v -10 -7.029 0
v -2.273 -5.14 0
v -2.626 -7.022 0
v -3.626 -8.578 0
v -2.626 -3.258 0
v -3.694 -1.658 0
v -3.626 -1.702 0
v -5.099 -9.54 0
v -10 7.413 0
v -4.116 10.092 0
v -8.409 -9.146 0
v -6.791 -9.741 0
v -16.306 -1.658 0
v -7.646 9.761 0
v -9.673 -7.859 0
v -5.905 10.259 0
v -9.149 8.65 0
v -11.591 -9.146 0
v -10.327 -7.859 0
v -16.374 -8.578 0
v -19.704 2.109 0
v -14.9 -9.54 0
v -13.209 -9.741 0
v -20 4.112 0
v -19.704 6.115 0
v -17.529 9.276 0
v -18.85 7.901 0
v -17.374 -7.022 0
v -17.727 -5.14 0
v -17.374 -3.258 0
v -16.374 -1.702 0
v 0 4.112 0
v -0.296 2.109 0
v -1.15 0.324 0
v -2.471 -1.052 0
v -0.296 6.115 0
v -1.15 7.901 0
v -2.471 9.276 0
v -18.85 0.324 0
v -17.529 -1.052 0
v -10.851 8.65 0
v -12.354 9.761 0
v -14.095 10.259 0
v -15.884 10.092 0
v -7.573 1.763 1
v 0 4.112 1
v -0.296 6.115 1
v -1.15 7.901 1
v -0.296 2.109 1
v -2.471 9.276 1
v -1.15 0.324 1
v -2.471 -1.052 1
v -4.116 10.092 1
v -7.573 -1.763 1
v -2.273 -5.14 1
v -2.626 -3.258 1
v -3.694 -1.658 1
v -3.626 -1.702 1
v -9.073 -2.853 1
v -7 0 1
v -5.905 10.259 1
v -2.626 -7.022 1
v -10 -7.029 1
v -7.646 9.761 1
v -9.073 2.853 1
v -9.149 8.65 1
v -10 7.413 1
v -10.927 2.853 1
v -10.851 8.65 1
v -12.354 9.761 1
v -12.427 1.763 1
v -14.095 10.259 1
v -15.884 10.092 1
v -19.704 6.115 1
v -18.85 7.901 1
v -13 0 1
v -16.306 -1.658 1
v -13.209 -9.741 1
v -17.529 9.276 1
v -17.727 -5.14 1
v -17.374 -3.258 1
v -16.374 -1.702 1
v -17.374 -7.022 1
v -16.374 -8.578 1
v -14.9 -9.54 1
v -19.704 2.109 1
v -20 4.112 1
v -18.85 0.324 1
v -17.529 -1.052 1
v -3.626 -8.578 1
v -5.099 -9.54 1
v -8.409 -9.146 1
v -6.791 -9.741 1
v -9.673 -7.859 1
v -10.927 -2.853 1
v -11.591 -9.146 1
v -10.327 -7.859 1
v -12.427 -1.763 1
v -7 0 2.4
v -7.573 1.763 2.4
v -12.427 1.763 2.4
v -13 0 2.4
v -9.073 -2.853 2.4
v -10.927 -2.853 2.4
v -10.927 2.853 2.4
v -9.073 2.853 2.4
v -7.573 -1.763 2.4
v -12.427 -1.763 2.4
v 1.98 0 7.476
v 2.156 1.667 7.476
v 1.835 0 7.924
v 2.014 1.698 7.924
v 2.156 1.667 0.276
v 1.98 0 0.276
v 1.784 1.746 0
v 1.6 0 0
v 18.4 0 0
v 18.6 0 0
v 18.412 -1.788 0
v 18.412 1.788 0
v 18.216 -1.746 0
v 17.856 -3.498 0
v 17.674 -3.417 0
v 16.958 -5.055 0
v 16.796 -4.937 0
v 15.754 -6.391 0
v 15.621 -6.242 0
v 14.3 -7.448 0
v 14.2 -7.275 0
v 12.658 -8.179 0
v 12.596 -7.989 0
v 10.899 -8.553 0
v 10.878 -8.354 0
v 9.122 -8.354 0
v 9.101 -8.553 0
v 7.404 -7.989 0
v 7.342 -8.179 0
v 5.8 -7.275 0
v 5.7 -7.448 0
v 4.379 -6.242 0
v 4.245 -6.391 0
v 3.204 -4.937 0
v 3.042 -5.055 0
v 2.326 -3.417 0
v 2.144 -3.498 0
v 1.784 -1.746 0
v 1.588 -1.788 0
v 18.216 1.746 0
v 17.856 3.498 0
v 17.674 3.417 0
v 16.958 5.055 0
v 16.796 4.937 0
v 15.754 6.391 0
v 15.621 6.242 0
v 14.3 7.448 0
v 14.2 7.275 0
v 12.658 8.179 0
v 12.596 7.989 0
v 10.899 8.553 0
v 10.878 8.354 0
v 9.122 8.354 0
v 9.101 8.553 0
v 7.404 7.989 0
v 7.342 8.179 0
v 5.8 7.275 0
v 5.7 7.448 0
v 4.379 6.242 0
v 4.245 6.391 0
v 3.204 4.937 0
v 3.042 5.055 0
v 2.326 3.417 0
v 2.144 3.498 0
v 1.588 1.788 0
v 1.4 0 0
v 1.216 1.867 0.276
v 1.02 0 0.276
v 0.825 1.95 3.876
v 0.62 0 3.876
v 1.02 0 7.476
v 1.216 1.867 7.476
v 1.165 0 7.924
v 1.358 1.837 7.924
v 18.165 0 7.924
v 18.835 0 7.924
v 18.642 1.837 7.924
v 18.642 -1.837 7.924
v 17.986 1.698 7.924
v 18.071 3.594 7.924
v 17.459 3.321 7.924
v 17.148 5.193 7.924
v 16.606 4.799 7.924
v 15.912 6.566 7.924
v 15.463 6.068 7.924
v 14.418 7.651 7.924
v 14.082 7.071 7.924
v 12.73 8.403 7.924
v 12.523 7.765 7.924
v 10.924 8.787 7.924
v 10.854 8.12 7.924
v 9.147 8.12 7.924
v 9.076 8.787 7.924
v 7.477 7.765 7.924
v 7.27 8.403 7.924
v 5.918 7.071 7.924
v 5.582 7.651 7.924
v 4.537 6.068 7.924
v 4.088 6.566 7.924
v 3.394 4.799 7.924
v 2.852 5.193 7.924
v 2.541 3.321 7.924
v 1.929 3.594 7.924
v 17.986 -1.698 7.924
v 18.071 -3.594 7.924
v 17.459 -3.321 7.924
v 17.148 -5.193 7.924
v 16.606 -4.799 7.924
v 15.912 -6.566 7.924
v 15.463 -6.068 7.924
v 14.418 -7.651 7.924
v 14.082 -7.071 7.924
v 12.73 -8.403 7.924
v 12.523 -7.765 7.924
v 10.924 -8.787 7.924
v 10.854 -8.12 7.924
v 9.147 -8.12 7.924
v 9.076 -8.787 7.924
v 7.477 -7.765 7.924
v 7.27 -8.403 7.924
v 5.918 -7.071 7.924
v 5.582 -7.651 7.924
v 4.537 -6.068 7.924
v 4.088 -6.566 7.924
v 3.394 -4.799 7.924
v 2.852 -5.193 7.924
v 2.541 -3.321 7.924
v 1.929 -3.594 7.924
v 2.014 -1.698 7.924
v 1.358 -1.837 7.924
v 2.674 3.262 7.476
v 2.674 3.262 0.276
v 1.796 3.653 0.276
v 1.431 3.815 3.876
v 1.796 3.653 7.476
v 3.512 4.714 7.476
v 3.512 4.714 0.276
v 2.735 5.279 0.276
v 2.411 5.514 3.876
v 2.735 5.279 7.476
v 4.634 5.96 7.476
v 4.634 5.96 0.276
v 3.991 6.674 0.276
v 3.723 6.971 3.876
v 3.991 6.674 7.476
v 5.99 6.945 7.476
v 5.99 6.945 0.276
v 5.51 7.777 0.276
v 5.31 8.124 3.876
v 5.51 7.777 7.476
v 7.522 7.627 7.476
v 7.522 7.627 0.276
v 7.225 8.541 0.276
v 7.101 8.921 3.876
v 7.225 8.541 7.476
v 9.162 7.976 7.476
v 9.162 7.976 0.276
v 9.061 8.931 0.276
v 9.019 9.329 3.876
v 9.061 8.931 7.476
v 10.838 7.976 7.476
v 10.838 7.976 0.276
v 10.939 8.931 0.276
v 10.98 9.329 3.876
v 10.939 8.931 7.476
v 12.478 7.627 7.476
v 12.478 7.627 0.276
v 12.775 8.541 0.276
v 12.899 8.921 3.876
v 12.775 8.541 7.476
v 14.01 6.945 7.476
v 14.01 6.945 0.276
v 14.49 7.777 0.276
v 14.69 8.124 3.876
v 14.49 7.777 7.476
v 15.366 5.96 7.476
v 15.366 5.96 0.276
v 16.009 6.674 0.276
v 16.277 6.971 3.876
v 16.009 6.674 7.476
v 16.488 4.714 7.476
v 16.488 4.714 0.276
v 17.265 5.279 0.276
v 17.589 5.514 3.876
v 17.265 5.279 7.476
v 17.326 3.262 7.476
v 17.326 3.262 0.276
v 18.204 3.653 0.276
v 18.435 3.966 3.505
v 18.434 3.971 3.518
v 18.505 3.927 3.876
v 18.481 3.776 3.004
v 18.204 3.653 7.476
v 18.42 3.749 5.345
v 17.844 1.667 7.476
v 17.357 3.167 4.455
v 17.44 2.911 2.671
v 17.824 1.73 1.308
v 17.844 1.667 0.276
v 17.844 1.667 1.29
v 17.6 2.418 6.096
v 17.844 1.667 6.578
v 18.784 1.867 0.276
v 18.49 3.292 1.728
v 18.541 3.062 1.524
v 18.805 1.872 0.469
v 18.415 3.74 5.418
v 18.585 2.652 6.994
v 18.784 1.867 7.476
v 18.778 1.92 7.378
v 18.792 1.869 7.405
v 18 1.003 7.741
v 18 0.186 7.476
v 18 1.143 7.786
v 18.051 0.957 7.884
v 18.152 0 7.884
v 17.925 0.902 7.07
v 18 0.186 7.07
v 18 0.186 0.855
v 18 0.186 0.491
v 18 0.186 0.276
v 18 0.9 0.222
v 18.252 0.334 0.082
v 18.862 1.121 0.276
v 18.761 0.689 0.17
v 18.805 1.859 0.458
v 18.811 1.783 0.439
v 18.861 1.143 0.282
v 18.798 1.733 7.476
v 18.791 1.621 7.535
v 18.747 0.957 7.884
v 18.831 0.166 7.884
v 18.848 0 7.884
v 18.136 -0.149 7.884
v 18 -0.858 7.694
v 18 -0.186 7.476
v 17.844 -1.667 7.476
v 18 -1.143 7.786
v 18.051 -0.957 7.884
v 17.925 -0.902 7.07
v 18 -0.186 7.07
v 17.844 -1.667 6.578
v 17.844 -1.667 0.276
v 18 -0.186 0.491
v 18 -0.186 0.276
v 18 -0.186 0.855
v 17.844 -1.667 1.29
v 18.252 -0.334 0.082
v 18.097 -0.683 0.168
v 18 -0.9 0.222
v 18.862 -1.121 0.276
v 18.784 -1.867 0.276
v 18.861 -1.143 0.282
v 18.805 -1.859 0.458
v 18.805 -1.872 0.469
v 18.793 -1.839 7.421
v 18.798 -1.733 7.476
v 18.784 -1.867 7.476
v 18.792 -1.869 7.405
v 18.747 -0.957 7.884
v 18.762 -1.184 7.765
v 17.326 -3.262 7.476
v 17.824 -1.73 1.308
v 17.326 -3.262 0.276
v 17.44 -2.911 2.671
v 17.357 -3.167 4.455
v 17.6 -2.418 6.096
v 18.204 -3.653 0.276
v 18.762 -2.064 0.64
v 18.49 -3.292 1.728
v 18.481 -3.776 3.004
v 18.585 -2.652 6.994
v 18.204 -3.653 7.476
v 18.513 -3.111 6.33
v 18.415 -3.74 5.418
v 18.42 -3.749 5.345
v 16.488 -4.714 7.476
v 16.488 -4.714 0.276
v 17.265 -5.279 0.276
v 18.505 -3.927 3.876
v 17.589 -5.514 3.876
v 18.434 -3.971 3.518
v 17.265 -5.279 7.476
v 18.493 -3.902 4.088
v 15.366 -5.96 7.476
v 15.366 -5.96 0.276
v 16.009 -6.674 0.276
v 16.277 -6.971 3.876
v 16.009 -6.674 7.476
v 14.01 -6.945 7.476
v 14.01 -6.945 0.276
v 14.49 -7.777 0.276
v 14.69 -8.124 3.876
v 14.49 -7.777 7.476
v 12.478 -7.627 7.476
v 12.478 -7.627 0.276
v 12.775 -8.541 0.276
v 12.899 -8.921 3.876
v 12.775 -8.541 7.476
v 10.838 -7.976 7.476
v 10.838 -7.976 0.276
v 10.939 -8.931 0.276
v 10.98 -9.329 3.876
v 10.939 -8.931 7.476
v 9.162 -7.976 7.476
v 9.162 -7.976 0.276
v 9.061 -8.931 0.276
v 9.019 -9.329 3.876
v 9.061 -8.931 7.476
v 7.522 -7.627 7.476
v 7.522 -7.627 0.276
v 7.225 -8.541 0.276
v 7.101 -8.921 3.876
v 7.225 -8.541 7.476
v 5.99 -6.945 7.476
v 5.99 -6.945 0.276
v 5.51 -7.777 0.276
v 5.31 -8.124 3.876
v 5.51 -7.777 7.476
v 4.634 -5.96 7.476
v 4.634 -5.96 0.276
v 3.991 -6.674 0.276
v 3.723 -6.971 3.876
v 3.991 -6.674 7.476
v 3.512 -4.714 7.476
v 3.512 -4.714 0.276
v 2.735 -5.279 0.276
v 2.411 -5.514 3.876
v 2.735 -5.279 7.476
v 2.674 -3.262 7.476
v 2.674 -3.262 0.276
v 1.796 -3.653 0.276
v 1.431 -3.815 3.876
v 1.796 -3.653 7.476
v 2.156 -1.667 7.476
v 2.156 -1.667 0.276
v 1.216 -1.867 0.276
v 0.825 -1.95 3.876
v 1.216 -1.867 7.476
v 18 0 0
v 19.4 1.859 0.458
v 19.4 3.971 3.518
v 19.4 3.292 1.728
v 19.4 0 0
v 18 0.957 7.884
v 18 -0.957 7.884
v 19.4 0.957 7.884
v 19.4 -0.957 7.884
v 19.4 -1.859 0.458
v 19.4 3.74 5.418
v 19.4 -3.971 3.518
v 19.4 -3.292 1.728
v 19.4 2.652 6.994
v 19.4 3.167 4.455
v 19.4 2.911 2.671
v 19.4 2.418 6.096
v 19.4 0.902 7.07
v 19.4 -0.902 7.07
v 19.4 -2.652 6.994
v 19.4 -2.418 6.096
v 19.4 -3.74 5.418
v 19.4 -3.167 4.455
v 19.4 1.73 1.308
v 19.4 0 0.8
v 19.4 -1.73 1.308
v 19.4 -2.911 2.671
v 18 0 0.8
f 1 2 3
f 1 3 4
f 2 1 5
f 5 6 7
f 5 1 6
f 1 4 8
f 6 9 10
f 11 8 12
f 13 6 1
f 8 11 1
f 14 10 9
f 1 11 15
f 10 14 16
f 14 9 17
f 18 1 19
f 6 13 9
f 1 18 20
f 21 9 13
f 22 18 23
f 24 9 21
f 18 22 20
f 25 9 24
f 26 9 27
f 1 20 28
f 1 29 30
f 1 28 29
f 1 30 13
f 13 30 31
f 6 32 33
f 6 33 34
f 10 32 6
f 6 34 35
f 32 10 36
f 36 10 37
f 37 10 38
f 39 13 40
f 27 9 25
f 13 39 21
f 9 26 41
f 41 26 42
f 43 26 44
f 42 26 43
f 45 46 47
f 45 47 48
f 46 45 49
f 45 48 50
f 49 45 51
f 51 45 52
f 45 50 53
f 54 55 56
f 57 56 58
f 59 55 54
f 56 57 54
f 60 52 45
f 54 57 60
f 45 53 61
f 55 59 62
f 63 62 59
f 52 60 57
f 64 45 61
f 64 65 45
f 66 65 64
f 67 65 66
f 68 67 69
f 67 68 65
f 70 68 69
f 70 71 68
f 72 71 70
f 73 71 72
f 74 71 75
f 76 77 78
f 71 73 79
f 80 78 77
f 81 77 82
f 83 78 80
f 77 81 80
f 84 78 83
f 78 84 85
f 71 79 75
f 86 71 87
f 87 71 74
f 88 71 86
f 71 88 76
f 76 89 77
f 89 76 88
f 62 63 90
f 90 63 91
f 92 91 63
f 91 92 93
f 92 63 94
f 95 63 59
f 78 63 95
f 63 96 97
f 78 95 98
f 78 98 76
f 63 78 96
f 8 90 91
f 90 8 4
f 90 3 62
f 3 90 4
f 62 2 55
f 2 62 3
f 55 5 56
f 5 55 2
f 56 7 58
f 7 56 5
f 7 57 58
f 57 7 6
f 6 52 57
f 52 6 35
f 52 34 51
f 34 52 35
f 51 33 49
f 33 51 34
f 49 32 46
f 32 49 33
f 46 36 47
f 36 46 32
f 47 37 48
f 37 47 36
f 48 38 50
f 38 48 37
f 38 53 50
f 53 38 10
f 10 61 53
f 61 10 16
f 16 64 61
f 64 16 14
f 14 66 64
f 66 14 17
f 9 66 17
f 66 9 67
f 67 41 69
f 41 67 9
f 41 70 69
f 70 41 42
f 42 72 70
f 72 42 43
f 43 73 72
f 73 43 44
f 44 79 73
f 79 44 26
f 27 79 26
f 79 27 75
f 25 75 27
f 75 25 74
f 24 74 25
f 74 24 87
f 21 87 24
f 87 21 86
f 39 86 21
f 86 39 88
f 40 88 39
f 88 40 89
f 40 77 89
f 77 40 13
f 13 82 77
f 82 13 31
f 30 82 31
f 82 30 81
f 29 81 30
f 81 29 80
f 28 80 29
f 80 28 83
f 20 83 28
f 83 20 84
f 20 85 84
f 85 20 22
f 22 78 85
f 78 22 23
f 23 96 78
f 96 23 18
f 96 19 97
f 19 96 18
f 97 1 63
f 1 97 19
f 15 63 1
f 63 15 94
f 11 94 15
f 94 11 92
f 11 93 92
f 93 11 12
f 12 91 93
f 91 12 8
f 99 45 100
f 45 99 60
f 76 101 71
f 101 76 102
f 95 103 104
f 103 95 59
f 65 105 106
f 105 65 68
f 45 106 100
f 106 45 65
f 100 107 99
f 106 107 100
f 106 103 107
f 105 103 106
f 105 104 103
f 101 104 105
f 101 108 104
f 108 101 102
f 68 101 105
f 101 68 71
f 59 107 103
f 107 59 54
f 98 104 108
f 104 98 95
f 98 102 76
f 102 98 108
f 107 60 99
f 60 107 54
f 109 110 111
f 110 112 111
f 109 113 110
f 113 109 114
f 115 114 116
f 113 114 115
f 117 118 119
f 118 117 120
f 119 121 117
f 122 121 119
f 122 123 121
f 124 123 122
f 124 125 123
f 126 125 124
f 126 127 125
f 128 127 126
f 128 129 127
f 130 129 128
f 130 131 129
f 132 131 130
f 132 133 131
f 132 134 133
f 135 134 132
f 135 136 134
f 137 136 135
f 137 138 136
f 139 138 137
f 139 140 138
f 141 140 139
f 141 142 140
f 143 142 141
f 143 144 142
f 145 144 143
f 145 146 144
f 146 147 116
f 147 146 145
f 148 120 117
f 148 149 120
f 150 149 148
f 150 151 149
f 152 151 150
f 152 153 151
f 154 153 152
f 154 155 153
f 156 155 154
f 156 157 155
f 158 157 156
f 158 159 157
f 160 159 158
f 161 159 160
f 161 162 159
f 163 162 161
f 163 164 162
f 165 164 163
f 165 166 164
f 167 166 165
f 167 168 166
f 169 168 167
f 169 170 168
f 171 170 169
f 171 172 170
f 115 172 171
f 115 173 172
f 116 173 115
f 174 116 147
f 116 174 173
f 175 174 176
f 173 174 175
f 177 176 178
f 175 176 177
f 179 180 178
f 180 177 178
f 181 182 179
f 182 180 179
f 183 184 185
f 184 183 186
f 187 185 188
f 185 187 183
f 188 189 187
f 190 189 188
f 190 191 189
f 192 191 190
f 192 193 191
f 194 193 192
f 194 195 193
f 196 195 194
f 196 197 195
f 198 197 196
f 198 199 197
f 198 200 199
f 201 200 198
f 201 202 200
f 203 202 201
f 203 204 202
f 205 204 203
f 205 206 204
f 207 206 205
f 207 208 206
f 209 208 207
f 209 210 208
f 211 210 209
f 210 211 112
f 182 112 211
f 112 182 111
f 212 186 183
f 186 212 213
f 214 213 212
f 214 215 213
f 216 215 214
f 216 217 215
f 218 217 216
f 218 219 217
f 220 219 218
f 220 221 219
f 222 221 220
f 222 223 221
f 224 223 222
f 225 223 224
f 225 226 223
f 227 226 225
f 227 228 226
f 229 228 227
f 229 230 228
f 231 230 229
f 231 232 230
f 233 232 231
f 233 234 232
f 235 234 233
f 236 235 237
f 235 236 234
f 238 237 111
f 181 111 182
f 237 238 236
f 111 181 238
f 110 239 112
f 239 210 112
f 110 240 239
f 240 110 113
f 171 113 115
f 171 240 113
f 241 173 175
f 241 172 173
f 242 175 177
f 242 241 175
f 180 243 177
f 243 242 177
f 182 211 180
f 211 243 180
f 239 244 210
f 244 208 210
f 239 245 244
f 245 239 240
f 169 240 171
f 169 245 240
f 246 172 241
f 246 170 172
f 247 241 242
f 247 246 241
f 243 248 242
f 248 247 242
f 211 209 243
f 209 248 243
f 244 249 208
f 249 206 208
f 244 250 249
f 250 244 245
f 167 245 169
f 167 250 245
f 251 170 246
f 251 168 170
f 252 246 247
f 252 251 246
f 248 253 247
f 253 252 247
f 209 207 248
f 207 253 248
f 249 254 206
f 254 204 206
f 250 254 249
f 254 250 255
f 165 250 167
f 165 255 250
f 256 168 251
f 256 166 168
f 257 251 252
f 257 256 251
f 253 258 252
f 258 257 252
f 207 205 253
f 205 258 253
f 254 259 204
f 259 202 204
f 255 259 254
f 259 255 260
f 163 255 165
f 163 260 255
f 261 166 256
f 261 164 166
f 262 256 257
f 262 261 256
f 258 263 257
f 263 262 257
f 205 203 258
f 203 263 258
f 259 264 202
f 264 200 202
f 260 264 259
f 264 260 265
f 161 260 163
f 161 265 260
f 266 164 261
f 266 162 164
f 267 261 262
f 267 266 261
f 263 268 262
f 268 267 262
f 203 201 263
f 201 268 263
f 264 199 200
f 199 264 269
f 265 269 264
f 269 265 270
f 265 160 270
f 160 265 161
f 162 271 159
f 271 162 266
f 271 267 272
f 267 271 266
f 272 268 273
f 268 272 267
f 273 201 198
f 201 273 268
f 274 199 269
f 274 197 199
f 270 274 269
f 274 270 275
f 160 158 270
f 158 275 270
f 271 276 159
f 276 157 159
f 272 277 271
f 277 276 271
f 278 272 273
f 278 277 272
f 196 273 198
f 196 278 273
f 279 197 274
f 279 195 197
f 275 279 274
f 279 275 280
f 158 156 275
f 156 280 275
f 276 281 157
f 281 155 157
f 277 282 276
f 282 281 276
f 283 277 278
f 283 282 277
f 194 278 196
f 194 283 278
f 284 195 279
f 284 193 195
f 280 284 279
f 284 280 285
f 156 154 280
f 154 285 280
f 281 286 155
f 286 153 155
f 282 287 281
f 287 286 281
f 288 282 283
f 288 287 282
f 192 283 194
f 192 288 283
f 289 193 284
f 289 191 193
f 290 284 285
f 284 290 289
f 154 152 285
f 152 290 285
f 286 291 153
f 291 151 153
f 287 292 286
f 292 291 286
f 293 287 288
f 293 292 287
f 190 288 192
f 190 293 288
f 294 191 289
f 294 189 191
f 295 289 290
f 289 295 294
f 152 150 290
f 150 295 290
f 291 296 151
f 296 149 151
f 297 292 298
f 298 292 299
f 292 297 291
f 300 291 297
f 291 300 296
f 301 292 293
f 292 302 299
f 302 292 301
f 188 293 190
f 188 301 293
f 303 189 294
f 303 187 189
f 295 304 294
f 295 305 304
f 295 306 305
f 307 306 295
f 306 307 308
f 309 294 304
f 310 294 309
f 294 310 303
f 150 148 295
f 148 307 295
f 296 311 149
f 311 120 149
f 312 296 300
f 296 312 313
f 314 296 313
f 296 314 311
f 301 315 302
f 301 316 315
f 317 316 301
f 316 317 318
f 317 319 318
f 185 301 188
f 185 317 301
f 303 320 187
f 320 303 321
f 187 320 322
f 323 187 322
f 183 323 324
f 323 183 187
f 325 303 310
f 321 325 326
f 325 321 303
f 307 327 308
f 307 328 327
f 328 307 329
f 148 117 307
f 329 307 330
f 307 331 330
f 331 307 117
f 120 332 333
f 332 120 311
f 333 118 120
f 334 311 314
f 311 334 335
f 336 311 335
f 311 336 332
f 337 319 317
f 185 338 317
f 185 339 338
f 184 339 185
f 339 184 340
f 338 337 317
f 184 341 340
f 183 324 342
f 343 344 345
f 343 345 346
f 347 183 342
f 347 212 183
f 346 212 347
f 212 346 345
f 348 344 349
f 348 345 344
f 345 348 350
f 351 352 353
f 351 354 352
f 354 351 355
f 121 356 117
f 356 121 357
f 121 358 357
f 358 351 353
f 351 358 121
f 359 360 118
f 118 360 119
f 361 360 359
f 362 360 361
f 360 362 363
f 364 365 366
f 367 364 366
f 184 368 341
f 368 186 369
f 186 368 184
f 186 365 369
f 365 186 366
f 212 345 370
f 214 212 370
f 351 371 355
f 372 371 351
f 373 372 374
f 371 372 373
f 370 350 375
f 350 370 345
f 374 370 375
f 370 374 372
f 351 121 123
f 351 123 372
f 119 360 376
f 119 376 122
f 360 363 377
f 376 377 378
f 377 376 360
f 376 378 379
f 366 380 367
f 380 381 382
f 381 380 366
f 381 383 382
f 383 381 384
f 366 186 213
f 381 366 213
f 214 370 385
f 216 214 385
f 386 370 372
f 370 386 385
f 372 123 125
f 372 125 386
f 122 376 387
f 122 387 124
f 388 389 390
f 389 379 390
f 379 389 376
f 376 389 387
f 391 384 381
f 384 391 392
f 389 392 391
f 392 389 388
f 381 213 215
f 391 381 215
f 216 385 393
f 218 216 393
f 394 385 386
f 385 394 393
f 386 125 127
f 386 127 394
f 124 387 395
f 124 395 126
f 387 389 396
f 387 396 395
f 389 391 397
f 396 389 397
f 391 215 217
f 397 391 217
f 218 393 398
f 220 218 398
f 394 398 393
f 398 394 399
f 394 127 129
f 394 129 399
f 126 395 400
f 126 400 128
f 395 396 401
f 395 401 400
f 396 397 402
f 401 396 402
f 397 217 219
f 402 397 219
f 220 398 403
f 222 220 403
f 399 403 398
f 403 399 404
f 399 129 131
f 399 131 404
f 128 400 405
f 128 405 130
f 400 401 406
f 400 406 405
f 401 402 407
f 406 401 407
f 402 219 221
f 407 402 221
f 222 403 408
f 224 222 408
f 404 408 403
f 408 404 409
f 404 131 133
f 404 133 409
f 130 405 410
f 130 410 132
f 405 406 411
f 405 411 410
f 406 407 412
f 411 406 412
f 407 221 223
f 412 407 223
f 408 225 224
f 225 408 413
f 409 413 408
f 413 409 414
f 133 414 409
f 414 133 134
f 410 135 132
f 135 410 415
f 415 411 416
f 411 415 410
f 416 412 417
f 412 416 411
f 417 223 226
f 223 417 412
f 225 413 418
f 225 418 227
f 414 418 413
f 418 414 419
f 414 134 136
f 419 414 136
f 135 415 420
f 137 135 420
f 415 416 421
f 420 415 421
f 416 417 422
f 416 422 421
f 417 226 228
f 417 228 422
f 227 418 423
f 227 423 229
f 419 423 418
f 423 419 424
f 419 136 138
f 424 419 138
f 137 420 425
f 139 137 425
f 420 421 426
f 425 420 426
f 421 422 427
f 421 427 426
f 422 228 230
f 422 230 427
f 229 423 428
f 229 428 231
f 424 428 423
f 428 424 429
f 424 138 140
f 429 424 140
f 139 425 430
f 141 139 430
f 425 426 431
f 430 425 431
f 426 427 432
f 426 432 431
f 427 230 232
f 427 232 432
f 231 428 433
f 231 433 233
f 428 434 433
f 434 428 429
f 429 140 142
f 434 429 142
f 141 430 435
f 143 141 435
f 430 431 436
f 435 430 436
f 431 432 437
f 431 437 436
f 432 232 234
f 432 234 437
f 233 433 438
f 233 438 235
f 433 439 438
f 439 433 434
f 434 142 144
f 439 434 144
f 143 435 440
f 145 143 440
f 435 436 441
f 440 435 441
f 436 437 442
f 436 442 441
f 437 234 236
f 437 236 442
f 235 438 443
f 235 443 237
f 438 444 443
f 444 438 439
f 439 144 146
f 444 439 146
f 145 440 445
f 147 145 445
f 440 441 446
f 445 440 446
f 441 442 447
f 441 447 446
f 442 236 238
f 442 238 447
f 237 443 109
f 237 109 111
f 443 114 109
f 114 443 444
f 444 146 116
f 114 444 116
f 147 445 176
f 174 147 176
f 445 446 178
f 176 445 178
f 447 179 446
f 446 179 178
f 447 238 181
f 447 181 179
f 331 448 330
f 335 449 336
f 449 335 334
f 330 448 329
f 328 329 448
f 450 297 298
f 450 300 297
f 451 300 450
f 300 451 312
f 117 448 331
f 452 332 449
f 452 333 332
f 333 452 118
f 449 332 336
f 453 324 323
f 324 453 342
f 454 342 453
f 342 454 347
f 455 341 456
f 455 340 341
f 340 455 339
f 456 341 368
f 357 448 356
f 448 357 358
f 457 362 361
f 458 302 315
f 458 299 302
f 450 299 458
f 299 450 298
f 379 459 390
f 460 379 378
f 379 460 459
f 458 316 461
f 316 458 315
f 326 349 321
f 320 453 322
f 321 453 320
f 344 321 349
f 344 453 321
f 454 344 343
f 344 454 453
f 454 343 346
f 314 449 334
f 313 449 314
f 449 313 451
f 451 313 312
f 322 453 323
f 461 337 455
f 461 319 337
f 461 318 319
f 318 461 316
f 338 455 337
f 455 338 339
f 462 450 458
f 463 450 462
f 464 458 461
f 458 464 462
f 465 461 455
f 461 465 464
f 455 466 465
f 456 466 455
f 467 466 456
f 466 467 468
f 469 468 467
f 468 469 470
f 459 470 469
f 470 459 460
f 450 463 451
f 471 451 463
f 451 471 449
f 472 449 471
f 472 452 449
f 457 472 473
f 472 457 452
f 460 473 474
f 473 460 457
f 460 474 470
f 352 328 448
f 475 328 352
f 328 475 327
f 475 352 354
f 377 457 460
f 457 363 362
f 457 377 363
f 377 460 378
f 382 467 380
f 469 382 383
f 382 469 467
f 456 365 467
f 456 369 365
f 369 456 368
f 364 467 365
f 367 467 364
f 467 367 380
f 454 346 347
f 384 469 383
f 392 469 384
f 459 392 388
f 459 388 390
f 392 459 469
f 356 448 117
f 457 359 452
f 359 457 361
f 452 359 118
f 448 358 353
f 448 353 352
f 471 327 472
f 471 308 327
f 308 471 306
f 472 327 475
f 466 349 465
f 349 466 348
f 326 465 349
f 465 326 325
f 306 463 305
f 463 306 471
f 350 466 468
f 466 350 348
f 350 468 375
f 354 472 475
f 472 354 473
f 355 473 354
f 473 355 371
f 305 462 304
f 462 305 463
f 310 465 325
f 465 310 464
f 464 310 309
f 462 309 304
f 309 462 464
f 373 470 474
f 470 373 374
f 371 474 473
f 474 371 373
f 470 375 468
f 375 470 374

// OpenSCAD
/* # Butterfly Ring
 * A butterfly ring, for Robin
 *
 * ## Parameters
 * The following parameters are used in shaping the ring.
 *
 * ### Butterfly
 *
 * * _butterfly_height_: the thickness of butterfly.
 * * _butterfly_size_: the bounding square of the butterfly.
 * * _butterfly_stem_height: the height of the stem;
 * * _butterfly_stem_diameter: the diameter of the stem;
 *
 * ### Ring
 * 
 * * _diameter_: the inner diameter of the ring.
 * * _width_: the width of the ring.
 * * _height_: the thickness of the ring.
 * * _bulge_: how high is the pentagonal ridge.
 * * _corner_radius_: how round are the edges
 *
 */

/* butterfly parameters */
bufferfly_height=1;
butterfly_size=20;
butterfly_stem_height= 5;
butterfly_stem_diameter=6;
tolerance=0.4;

/* ring parameters */
ring_diameter=16;
ring_width=8;
ring_height=1;
ring_bulge=0.4;
ring_corner_radius=0.4;

/* print separation */
distance = 20;

translate([-distance/2, 0, 0]) butterfly(bufferfly_height, butterfly_size, ring_height + ring_bulge, butterfly_stem_diameter);
translate([ distance/2, 0, ring_width/2]) ring(ring_diameter/2, ring_width, ring_height, ring_bulge, ring_corner_radius, butterfly_stem_diameter + tolerance);

module butterfly(height=1, size=20, connector_height, connector_diameter) {
  union() {
    linear_extrude(height) butterfly_shape(size);
    translate([0, 0, height]) connector(connector_height, connector_diameter);
  }
}

module butterfly_shape(size) {
  resize([size, size, 1]) union() {
    square(8, center=true);
    symmetric() {
      translate([5, 4, 0]) circle(d=12);
      translate([4, -5, 0]) circle(d=9);
    }
  }
}

module symmetric() {
  children();
  mirror([1, 0, 0]) children();
}

module connector(height, diameter) {
  cylinder(h=height, d=diameter);
}

module ring(radius=5, width=25, height=20, bulge=3, corner_radius=3, connector_diameter=20) {
  difference () {
    union() {
      rotate_extrude() translate([radius, 0, 0]) rotate([0, 0, -90]) profile(width, height, bulge, corner_radius);
      translate([radius, 0, 0]) rotate([0, 90, 0]) cylinder(h=height+bulge, d=width);
    }
    rotate([0, 90, 0]) cylinder(h=2*radius, d=connector_diameter);
  }
}

module profile(width, height, bulge, corner_radius) {
  hull() {
    stamp_pattern(width, height, bulge, corner_radius) circle(r=corner_radius); 
  }
}

module stamp_pattern(width, height, bulge, corner_radius) {
    translate([-(width/2 - corner_radius), corner_radius, 0]) children();
    translate([ (width/2 - corner_radius), corner_radius, 0]) children();
    translate([-(width/2 - corner_radius), height-corner_radius, 0]) children();
    translate([ (width/2 - corner_radius), height-corner_radius, 0]) children();
    translate([0, height-corner_radius+bulge,0]) children();
}
